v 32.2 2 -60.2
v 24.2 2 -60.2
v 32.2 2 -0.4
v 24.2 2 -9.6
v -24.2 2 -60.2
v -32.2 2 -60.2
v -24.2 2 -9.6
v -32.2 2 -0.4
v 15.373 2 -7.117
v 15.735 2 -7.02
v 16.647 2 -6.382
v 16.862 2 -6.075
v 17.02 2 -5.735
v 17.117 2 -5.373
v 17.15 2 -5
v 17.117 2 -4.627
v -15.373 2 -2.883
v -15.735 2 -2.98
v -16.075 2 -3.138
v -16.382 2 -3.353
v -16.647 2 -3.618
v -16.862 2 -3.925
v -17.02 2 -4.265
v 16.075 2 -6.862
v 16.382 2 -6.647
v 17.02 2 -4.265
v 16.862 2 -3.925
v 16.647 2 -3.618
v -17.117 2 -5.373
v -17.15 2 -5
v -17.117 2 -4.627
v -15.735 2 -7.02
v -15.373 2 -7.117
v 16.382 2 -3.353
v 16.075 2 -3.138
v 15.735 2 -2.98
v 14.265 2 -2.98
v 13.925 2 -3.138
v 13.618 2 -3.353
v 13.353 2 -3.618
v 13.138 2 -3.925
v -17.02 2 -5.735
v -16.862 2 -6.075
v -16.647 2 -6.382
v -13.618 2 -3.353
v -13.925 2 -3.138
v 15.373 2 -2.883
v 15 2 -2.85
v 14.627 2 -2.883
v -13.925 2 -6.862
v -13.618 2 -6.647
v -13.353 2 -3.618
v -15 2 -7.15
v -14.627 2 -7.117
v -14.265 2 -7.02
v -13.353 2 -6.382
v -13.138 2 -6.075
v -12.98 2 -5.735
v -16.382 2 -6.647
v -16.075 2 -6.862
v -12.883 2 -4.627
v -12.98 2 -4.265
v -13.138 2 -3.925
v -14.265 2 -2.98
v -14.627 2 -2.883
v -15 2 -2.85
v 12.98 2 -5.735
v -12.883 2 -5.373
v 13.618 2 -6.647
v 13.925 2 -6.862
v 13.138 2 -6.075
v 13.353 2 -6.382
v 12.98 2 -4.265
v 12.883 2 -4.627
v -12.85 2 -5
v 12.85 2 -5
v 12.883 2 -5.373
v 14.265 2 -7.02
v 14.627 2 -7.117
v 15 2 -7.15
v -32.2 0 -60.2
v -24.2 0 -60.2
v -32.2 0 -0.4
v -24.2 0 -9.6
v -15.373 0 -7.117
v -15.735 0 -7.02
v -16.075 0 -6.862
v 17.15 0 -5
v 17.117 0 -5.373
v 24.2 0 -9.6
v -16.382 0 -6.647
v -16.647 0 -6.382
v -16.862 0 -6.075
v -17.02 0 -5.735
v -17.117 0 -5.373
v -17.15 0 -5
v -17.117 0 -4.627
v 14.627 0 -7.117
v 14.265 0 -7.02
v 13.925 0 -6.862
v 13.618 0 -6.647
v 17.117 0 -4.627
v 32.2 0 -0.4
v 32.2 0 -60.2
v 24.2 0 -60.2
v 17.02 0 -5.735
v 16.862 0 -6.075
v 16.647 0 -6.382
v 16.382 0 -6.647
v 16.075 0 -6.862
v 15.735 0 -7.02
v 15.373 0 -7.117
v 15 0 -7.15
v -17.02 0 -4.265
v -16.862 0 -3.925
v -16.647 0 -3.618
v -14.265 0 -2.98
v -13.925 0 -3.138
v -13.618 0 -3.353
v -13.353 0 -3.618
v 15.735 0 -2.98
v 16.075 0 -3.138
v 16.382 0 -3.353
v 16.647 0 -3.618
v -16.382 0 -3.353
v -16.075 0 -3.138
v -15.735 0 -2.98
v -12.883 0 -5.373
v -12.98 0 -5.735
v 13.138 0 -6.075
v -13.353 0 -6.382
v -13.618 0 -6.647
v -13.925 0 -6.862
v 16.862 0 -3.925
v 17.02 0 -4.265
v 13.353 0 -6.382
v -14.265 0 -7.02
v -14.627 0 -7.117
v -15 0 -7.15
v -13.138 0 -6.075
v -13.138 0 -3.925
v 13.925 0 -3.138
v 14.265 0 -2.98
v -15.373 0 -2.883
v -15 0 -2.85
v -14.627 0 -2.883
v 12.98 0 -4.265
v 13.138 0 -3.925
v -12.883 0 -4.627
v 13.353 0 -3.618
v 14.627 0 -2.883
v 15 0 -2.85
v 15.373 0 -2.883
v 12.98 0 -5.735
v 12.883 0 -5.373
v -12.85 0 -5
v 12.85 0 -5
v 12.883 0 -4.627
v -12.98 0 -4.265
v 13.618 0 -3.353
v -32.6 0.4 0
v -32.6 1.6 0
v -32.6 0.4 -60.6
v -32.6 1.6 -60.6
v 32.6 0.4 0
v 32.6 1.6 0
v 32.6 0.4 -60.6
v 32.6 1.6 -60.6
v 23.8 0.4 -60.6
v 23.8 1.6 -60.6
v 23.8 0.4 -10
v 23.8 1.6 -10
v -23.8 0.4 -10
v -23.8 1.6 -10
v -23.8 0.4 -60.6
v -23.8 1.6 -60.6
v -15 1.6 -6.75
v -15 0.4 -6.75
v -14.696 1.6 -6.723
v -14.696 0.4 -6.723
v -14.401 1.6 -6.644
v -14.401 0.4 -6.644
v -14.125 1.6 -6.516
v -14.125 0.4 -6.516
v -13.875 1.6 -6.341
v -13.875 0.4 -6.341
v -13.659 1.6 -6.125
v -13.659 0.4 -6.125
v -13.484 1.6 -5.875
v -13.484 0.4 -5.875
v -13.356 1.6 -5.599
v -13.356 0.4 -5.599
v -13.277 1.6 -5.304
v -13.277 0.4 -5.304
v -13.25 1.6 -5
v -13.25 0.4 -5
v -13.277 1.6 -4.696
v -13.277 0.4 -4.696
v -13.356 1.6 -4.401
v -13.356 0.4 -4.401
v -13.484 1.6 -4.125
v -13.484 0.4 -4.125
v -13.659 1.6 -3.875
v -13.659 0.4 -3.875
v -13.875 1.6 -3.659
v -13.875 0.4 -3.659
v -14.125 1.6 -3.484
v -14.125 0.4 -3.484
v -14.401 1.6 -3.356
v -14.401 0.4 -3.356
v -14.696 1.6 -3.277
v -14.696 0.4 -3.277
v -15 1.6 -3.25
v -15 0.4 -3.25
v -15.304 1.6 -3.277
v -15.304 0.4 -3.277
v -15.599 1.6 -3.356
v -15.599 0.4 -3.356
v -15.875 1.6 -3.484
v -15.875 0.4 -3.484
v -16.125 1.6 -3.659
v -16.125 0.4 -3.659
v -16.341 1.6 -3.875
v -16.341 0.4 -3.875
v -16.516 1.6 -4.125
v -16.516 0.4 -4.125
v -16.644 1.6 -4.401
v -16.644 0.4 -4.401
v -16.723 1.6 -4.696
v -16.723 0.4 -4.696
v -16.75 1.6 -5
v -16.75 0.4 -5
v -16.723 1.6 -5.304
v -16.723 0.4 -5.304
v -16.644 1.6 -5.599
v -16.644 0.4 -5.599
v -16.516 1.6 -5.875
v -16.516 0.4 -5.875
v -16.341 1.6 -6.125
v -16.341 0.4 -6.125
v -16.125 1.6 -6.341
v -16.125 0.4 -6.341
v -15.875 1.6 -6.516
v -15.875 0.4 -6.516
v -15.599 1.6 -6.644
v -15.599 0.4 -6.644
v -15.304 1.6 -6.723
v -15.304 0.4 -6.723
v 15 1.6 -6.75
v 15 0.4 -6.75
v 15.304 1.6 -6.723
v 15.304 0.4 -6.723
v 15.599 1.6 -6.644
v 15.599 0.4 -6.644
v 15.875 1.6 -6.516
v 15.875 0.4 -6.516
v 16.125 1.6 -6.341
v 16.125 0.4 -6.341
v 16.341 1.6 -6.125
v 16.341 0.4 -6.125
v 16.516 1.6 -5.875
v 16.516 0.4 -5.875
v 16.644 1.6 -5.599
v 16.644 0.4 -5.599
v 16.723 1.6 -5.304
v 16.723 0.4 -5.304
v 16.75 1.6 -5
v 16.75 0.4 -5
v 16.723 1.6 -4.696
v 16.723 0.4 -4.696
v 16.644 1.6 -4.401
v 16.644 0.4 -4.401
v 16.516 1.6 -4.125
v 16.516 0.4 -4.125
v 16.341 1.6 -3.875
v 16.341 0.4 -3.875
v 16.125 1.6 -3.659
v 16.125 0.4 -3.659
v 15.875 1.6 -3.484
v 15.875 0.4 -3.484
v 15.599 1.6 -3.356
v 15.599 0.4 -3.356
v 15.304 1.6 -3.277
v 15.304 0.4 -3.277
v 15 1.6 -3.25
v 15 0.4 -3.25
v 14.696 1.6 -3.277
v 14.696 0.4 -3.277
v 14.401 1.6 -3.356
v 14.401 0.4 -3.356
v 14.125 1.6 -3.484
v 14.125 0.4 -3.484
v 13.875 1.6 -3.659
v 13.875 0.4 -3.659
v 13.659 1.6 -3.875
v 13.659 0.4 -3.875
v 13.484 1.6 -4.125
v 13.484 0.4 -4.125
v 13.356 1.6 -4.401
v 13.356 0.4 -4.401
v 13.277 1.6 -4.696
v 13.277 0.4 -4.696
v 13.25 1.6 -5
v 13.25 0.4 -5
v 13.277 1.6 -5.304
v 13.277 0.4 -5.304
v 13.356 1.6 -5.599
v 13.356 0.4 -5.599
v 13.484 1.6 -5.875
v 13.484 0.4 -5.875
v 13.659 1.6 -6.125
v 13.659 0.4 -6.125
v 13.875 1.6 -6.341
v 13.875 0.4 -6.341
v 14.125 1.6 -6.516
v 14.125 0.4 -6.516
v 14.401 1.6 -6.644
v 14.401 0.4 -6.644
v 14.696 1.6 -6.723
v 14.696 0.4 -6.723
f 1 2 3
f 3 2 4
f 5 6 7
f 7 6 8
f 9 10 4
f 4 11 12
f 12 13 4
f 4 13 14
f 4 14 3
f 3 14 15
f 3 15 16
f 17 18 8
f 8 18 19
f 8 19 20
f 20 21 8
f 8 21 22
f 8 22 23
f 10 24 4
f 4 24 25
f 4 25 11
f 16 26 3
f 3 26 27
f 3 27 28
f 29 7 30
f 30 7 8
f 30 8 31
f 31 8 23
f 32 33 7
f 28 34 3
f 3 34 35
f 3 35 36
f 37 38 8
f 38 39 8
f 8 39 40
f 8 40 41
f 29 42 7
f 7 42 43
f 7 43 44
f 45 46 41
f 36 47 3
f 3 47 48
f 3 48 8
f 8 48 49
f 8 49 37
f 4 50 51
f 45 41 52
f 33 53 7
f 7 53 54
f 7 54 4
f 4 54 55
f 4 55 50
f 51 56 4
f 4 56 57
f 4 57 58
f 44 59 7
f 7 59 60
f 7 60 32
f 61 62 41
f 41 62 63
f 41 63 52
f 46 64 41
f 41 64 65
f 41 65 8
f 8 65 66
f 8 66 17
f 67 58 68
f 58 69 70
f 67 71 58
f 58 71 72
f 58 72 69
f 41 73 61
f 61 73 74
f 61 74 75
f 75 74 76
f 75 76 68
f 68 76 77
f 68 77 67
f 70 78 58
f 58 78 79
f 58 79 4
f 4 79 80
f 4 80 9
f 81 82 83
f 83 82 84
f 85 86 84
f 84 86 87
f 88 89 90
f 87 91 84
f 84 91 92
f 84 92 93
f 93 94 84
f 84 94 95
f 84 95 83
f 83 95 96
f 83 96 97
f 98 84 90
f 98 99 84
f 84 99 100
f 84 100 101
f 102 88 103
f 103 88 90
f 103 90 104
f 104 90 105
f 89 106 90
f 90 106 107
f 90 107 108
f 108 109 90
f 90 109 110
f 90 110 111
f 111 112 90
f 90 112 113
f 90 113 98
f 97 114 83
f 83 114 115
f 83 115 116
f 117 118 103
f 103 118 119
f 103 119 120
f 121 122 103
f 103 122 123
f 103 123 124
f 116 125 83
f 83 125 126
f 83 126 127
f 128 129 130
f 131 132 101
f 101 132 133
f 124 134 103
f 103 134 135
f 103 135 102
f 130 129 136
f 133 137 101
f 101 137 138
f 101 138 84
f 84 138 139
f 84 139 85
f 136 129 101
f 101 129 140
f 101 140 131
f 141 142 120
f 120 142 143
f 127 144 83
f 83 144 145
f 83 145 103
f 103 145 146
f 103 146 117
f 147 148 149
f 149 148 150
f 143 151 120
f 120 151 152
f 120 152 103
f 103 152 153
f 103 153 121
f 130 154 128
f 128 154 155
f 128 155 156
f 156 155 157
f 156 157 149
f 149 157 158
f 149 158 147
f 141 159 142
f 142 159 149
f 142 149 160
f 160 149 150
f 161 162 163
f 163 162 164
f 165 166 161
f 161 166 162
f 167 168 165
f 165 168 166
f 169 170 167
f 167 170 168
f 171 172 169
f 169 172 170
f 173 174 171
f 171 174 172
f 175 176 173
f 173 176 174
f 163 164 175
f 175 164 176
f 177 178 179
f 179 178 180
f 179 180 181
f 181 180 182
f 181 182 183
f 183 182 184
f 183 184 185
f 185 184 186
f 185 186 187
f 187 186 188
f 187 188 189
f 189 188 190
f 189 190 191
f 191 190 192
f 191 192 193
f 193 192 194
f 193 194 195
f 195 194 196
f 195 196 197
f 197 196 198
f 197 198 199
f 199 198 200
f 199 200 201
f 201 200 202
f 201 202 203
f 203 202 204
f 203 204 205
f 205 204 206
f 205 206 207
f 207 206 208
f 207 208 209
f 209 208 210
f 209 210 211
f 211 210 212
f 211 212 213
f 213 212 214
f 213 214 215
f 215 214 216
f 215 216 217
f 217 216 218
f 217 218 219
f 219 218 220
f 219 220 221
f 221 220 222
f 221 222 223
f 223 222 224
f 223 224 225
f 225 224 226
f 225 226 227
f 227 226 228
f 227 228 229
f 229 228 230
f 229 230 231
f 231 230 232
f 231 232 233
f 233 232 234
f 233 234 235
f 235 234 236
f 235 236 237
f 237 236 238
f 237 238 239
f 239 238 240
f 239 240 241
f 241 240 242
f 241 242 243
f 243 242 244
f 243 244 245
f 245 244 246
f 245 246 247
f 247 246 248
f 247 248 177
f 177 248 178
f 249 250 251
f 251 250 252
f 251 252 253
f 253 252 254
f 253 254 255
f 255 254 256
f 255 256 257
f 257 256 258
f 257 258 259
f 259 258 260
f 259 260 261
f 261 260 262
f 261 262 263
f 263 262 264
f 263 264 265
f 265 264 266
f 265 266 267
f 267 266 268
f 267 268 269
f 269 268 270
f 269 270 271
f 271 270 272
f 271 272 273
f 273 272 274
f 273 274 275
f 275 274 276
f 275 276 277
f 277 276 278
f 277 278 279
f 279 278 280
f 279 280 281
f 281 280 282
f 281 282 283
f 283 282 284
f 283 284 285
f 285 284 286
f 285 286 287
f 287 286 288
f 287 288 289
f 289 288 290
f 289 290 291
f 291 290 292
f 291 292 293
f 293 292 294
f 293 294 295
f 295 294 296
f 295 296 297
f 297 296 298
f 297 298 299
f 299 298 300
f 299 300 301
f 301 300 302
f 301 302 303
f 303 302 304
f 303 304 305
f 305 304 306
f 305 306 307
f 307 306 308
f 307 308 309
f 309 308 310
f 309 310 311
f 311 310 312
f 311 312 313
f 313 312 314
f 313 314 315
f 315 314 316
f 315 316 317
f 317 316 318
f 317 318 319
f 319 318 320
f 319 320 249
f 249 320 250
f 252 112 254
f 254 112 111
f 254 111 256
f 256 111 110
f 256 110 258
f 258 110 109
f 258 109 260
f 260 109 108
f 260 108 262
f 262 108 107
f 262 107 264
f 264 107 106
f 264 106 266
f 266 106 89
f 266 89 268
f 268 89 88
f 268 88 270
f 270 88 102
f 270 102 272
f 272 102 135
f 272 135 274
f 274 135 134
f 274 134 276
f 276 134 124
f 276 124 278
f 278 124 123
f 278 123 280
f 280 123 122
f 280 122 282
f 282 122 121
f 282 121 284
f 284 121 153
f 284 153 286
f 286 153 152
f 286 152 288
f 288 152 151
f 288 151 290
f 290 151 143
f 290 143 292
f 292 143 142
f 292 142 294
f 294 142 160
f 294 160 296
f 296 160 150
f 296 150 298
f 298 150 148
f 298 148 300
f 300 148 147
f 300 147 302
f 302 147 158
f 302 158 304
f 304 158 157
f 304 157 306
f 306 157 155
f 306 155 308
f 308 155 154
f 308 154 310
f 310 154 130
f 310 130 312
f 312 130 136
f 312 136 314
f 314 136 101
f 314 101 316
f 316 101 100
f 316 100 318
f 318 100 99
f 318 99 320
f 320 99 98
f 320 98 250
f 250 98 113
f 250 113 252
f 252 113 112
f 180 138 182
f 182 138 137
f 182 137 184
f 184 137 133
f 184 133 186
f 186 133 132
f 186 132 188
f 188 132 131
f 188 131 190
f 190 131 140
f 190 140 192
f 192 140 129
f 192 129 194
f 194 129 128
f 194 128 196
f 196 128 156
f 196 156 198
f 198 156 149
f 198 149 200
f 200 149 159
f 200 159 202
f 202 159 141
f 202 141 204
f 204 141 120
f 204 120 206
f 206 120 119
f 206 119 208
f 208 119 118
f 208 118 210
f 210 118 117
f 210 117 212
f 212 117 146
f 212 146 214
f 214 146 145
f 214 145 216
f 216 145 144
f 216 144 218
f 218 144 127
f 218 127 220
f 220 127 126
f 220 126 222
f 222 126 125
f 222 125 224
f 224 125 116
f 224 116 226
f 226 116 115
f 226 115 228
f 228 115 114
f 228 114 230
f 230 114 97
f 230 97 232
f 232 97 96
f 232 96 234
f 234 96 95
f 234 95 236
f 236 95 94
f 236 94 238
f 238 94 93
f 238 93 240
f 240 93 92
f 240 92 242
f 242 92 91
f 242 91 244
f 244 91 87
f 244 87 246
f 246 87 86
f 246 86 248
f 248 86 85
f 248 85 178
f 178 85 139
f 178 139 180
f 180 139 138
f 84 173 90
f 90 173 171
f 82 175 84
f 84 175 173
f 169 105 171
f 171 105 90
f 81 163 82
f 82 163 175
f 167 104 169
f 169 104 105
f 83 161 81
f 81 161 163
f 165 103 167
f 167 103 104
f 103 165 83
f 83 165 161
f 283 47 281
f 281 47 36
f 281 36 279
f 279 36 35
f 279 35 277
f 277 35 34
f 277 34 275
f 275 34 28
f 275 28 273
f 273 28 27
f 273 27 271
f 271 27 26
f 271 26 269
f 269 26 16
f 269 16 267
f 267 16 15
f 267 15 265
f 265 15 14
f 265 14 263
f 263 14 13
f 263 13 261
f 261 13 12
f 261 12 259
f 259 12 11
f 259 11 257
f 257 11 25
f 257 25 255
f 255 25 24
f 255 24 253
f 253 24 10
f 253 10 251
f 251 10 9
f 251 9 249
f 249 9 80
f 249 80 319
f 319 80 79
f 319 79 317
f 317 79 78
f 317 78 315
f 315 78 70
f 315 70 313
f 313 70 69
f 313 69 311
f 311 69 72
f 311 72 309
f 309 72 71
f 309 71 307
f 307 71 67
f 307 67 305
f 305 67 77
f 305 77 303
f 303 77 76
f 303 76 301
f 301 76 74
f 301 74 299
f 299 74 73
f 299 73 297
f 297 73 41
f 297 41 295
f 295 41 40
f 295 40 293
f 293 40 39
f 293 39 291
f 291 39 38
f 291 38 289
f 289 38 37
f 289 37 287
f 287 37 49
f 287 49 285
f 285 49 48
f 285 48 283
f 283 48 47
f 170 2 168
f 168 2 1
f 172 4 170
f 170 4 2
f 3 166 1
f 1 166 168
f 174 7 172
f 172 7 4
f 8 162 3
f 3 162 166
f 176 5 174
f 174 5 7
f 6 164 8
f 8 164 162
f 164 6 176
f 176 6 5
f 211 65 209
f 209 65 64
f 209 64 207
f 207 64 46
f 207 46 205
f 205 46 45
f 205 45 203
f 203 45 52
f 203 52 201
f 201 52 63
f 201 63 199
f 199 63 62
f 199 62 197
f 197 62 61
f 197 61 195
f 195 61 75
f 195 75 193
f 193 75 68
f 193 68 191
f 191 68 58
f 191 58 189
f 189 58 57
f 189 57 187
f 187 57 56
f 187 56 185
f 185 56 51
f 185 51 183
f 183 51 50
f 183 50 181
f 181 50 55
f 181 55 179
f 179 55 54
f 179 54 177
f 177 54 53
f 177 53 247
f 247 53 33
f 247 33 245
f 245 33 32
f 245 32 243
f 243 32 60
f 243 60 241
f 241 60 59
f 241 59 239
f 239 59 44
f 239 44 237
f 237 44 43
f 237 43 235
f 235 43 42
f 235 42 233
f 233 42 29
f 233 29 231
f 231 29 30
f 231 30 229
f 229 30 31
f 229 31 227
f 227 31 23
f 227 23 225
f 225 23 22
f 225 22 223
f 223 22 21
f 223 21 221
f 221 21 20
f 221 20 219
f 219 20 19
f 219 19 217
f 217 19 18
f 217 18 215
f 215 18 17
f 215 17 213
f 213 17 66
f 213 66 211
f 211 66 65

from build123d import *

# Parameters (mm, degrees)
SKETCH1_R           = 1.75
BOSS_EXTRUDE1_DEPTH = 2
CHAMFER1_SIZE       = 0.4


with BuildPart() as part:
    # Sketch1 → Boss-Extrude1 (new body)
    with BuildSketch(Plane(origin=(0, 0, 0), x_dir=(1, 0, 0), z_dir=(0, 1, 0))):
        Polygon((-32.6, 0), (32.6, 0), (32.6, 60.6), (23.8, 60.6), (23.8, 10), (-23.8, 10), (-23.8, 60.6), (-32.6, 60.6), align=None)
        with Locations(Location((-15, 5, 0), (0, 0, 270))):
            Circle(SKETCH1_R, mode=Mode.SUBTRACT)
        with Locations(Location((15, 5, 0), (0, 0, 270))):
            Circle(SKETCH1_R, mode=Mode.SUBTRACT)
    extrude(amount=BOSS_EXTRUDE1_DEPTH)

    # Chamfer1
    chamfer1_edges = [part.edges().sort_by_distance(p)[0] for p in [
        (28.2, 0, -60.6),
        (32.6, 0, -30.3),
        (0, 0, 0),
        (-32.6, 0, -30.3),
        (32.6, 2, -30.3),
        (28.2, 2, -60.6),
        (23.8, 2, -35.3),
        (-15, 0, -6.75),
        (-15, 2, -6.75),
        (0, 2, -10),
        (15, 0, -6.75),
        (15, 2, -6.75),
        (-23.8, 2, -35.3),
        (-28.2, 2, -60.6),
        (-32.6, 2, -30.3),
        (-28.2, 0, -60.6),
        (0, 2, 0),
        (-23.8, 0, -35.3),
        (0, 0, -10),
        (23.8, 0, -35.3),
    ]]
    chamfer(chamfer1_edges, length=CHAMFER1_SIZE)


solid = part.part
